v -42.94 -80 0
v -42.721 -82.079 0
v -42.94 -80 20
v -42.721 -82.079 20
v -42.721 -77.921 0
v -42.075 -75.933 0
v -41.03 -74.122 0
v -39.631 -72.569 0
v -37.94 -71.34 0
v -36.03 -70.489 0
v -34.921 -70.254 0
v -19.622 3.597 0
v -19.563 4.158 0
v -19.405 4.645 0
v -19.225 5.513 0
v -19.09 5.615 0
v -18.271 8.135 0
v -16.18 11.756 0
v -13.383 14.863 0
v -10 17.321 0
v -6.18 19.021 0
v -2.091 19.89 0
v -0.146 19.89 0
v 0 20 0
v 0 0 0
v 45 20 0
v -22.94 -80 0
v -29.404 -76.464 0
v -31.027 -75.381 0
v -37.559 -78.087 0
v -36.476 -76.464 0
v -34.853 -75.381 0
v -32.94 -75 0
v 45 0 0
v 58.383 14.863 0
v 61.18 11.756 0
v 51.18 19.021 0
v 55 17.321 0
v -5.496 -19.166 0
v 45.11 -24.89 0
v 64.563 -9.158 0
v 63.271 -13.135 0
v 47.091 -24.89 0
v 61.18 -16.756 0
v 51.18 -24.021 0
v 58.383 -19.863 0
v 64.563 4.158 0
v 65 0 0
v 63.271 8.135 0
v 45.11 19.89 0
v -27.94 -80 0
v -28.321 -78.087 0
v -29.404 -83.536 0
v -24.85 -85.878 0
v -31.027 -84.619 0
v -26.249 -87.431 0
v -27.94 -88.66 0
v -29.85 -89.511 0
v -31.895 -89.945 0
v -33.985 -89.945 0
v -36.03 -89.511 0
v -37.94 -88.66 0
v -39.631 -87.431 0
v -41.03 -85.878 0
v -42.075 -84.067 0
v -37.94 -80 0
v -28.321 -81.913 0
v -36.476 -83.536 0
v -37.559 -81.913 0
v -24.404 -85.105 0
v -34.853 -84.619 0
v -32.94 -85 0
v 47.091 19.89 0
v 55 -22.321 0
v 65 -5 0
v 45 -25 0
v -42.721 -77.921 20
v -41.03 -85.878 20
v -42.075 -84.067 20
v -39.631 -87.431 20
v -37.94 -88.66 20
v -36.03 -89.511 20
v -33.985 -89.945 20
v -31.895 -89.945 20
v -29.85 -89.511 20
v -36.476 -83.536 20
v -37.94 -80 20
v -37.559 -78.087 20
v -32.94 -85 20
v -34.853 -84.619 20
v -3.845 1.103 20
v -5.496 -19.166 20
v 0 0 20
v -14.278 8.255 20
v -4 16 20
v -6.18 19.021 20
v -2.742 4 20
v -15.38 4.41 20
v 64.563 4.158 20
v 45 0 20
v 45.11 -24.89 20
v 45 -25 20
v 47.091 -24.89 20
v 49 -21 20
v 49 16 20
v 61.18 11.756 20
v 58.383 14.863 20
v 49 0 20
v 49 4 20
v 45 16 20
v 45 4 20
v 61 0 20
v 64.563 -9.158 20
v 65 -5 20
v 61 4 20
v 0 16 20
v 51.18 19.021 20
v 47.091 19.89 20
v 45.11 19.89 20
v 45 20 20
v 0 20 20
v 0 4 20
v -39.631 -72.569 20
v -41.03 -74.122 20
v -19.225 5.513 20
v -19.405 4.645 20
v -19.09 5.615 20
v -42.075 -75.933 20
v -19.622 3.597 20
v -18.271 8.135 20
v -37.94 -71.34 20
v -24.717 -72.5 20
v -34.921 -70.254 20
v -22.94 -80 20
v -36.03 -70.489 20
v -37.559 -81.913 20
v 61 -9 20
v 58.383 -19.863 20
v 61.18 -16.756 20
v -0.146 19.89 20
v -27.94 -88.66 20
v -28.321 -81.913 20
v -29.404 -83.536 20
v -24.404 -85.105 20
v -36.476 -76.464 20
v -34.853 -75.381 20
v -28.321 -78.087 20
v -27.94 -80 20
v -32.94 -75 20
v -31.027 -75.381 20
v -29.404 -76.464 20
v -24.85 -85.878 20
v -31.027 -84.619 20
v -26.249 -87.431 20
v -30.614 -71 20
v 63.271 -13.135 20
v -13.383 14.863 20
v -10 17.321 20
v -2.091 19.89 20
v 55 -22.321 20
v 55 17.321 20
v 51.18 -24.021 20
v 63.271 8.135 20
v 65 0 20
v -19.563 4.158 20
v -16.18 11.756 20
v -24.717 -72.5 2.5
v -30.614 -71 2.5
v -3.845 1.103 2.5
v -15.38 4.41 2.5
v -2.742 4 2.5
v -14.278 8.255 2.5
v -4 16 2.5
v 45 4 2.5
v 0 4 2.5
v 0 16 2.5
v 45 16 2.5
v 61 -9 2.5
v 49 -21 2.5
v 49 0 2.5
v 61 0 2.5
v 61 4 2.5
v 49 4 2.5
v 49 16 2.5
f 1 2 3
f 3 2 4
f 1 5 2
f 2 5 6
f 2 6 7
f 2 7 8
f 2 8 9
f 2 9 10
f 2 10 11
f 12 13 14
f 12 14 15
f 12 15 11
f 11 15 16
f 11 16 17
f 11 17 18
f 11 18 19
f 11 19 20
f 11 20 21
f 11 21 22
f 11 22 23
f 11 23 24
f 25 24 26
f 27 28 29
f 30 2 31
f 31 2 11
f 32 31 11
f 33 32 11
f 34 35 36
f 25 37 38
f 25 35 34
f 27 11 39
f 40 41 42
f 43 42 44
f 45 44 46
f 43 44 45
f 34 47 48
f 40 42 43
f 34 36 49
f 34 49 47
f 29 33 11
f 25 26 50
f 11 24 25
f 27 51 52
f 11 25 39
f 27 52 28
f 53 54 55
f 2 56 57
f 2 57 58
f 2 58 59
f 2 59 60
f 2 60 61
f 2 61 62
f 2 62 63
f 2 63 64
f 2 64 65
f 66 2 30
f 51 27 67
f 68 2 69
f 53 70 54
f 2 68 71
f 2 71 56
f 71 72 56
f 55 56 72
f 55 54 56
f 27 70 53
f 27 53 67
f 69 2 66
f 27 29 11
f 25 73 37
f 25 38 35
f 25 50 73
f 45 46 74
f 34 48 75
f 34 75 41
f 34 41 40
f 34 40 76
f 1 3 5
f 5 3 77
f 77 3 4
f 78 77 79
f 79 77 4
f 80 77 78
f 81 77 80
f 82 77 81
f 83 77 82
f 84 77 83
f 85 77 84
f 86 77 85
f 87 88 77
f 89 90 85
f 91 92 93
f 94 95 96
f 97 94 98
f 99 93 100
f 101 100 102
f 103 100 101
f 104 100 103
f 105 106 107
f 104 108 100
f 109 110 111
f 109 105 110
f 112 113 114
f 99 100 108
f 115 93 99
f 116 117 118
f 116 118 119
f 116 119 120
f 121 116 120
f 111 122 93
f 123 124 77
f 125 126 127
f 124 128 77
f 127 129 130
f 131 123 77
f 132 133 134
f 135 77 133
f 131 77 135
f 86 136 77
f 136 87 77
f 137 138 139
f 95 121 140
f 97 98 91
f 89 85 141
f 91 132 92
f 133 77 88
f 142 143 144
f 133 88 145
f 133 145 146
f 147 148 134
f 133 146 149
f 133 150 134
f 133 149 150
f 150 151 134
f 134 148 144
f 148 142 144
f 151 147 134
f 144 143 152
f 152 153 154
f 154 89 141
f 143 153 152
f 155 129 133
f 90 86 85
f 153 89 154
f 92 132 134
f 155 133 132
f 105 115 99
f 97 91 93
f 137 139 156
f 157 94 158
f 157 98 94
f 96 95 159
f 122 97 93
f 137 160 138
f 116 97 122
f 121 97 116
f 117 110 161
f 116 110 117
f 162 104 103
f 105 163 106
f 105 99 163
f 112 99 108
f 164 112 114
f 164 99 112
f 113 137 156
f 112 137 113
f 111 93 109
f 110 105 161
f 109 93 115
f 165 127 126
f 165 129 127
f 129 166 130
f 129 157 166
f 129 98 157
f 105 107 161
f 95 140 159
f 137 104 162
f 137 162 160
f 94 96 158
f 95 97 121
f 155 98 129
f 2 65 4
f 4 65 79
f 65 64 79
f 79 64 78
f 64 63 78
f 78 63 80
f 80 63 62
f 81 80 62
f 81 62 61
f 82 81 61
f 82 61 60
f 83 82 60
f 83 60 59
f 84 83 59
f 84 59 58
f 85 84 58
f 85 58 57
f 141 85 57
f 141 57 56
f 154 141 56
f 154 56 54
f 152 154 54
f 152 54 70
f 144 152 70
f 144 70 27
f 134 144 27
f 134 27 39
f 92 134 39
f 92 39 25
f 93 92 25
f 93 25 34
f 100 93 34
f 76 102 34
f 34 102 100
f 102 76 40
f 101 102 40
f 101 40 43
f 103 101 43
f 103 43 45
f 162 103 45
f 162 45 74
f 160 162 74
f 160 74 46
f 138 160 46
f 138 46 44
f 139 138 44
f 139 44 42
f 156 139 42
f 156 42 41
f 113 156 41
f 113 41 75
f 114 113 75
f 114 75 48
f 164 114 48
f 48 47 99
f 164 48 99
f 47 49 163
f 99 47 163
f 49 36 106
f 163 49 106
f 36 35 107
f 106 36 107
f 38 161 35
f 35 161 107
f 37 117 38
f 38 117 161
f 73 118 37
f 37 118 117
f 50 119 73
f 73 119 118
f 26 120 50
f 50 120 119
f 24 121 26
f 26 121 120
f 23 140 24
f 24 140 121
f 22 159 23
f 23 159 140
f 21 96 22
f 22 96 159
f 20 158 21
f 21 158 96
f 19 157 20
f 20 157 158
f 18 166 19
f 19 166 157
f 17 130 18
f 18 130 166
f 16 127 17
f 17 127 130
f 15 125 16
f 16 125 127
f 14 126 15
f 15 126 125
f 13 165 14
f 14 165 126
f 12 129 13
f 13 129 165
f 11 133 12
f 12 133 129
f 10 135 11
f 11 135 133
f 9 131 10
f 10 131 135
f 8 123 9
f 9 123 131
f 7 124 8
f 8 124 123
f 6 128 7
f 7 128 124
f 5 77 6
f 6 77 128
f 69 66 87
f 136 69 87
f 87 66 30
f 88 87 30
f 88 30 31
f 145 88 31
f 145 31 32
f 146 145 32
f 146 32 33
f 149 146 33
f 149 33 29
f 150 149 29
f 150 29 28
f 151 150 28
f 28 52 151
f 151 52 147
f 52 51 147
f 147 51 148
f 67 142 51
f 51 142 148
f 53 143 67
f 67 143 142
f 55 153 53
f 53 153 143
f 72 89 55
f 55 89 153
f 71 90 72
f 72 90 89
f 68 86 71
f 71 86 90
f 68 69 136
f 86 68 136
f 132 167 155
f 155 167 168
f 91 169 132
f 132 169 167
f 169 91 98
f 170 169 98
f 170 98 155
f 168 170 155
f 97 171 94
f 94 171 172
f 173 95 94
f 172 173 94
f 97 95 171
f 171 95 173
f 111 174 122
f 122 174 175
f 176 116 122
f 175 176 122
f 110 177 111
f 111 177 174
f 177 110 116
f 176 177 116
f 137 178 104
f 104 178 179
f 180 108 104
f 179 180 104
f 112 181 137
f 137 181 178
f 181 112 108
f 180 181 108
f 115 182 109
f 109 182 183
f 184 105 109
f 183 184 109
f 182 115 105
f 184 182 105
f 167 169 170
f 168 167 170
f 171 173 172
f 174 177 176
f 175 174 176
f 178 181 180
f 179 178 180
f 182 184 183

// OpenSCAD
//linear_extrude(height=20, twist=0)
//{
//  difference()
//  {
//    polygon([[0,0],[0,10],[15,15],[10,0]]);
//    circle(r=5);
//  }
//}


w = 45;      // Width top of handrail
d = 25;      // Depth of heandrail.
h = 80;      // Height of main hanger
a = 16;      // Angle between handrail top and side
t1 = 20;     // Thickness at top of hanger
t2 = 14;     // Thickness at bottom of hanger
t3 = 4;      // Thickness of outer frame
t4 = 2.5;    // Thickness of frame web
r1 = 10;     // Outer radius of rope eye
r2 = 5;      // Radius of rope eye hole

p1  = [0,0];
p2  = [w,0];
p3  = [w,-d];
p4  = [w+t1,-d+t1];
p5  = [w+t1,0];
p6  = [w,t1];
p7  = [0,t1];
p8  = [-t1*cos(a),t1*sin(a)];
p9  = [-h*tan(a)-t2,-h];
p10 = [-h*tan(a),-h];
p11 = p10 + [-(r1+r1)*tan(a),-(r1+r1)];
p12 = p11 + [r1,0];

p21 = p1 + [-t3*cos(a),t3*sin(a)];
p22 = p8 + [t3*cos(a),-t3*sin(a)];
p23 = p9 + [t3*cos(a)+(t3+0.5*r1)*sin(a),t3+0.5*r1];
p24 = p10 + [-t3*cos(a)+(t3+0.35*r1)*sin(a),t3+0.35*r1];

p31 = p1 + [t3*(sin(a)-cos(a)),t3];
p32 = p8 + [t3*(cos(a)+sin(a)),t3*(cos(a)-sin(a))];
p33 = p7 + [-t3,-t3];

p41 = p1 + [0,t3];
p42 = p2 + [0,t3];
p43 = p6 + [0,-t3];
p44 = p7 + [0,-t3];

p51 = p2 + [t3,t3];
p52 = p5 + [-t3,t3];
p53 = p6 + [t3,-t3];

p61 = p2 + [t3,0];
p62 = p3 + [t3,t3];
p63 = p4 + [-t3,-t3];
p64 = p5 + [-t3,0];

module HangerProfile()
{
  difference()
  {
  union()
    {
      polygon([p1,p2,p3,p4,p5,p6,p7,p8,p9,p10]);
      circle(r=t1);
      translate(p2) circle(r=t1);
      translate([w,-d+t1]) circle(r=t1);
      translate(p10-[r1,0]) circle(r=r1);
    }
    polygon([p1,p2,p3,p12,p11]);
    translate(p10-[r1,0]) circle(r=r2);
  }
}

module WebProfile()
{
  polygon([p21,p22,p23,p24]);
  polygon([p31,p32,p33]);
  polygon([p41,p42,p43,p44]);
  polygon([p51,p52,p53]);
  polygon([p61,p62,p63,p64]);
}

  //polygon([[0,0],[w,0],[w,-d],
  //         [w+t1,-d+t1],[w+t1,0],[w,t1],
  //         [0,t1],[-t1*cos(a),t1*sin(a)],
  //         [-h*tan(a)-t2,-h],[-h*tan(a),-h]
  //         ], 
  //        convexity=4);


//difference()
//{
//  HangerProfile();
//  WebProfile();
//}


difference()
{
  linear_extrude(height=20, twist=0)
  {
    HangerProfile();
  }
  translate([0,0,t4])
    linear_extrude(height=20, twist=0)
      WebProfile();
}
